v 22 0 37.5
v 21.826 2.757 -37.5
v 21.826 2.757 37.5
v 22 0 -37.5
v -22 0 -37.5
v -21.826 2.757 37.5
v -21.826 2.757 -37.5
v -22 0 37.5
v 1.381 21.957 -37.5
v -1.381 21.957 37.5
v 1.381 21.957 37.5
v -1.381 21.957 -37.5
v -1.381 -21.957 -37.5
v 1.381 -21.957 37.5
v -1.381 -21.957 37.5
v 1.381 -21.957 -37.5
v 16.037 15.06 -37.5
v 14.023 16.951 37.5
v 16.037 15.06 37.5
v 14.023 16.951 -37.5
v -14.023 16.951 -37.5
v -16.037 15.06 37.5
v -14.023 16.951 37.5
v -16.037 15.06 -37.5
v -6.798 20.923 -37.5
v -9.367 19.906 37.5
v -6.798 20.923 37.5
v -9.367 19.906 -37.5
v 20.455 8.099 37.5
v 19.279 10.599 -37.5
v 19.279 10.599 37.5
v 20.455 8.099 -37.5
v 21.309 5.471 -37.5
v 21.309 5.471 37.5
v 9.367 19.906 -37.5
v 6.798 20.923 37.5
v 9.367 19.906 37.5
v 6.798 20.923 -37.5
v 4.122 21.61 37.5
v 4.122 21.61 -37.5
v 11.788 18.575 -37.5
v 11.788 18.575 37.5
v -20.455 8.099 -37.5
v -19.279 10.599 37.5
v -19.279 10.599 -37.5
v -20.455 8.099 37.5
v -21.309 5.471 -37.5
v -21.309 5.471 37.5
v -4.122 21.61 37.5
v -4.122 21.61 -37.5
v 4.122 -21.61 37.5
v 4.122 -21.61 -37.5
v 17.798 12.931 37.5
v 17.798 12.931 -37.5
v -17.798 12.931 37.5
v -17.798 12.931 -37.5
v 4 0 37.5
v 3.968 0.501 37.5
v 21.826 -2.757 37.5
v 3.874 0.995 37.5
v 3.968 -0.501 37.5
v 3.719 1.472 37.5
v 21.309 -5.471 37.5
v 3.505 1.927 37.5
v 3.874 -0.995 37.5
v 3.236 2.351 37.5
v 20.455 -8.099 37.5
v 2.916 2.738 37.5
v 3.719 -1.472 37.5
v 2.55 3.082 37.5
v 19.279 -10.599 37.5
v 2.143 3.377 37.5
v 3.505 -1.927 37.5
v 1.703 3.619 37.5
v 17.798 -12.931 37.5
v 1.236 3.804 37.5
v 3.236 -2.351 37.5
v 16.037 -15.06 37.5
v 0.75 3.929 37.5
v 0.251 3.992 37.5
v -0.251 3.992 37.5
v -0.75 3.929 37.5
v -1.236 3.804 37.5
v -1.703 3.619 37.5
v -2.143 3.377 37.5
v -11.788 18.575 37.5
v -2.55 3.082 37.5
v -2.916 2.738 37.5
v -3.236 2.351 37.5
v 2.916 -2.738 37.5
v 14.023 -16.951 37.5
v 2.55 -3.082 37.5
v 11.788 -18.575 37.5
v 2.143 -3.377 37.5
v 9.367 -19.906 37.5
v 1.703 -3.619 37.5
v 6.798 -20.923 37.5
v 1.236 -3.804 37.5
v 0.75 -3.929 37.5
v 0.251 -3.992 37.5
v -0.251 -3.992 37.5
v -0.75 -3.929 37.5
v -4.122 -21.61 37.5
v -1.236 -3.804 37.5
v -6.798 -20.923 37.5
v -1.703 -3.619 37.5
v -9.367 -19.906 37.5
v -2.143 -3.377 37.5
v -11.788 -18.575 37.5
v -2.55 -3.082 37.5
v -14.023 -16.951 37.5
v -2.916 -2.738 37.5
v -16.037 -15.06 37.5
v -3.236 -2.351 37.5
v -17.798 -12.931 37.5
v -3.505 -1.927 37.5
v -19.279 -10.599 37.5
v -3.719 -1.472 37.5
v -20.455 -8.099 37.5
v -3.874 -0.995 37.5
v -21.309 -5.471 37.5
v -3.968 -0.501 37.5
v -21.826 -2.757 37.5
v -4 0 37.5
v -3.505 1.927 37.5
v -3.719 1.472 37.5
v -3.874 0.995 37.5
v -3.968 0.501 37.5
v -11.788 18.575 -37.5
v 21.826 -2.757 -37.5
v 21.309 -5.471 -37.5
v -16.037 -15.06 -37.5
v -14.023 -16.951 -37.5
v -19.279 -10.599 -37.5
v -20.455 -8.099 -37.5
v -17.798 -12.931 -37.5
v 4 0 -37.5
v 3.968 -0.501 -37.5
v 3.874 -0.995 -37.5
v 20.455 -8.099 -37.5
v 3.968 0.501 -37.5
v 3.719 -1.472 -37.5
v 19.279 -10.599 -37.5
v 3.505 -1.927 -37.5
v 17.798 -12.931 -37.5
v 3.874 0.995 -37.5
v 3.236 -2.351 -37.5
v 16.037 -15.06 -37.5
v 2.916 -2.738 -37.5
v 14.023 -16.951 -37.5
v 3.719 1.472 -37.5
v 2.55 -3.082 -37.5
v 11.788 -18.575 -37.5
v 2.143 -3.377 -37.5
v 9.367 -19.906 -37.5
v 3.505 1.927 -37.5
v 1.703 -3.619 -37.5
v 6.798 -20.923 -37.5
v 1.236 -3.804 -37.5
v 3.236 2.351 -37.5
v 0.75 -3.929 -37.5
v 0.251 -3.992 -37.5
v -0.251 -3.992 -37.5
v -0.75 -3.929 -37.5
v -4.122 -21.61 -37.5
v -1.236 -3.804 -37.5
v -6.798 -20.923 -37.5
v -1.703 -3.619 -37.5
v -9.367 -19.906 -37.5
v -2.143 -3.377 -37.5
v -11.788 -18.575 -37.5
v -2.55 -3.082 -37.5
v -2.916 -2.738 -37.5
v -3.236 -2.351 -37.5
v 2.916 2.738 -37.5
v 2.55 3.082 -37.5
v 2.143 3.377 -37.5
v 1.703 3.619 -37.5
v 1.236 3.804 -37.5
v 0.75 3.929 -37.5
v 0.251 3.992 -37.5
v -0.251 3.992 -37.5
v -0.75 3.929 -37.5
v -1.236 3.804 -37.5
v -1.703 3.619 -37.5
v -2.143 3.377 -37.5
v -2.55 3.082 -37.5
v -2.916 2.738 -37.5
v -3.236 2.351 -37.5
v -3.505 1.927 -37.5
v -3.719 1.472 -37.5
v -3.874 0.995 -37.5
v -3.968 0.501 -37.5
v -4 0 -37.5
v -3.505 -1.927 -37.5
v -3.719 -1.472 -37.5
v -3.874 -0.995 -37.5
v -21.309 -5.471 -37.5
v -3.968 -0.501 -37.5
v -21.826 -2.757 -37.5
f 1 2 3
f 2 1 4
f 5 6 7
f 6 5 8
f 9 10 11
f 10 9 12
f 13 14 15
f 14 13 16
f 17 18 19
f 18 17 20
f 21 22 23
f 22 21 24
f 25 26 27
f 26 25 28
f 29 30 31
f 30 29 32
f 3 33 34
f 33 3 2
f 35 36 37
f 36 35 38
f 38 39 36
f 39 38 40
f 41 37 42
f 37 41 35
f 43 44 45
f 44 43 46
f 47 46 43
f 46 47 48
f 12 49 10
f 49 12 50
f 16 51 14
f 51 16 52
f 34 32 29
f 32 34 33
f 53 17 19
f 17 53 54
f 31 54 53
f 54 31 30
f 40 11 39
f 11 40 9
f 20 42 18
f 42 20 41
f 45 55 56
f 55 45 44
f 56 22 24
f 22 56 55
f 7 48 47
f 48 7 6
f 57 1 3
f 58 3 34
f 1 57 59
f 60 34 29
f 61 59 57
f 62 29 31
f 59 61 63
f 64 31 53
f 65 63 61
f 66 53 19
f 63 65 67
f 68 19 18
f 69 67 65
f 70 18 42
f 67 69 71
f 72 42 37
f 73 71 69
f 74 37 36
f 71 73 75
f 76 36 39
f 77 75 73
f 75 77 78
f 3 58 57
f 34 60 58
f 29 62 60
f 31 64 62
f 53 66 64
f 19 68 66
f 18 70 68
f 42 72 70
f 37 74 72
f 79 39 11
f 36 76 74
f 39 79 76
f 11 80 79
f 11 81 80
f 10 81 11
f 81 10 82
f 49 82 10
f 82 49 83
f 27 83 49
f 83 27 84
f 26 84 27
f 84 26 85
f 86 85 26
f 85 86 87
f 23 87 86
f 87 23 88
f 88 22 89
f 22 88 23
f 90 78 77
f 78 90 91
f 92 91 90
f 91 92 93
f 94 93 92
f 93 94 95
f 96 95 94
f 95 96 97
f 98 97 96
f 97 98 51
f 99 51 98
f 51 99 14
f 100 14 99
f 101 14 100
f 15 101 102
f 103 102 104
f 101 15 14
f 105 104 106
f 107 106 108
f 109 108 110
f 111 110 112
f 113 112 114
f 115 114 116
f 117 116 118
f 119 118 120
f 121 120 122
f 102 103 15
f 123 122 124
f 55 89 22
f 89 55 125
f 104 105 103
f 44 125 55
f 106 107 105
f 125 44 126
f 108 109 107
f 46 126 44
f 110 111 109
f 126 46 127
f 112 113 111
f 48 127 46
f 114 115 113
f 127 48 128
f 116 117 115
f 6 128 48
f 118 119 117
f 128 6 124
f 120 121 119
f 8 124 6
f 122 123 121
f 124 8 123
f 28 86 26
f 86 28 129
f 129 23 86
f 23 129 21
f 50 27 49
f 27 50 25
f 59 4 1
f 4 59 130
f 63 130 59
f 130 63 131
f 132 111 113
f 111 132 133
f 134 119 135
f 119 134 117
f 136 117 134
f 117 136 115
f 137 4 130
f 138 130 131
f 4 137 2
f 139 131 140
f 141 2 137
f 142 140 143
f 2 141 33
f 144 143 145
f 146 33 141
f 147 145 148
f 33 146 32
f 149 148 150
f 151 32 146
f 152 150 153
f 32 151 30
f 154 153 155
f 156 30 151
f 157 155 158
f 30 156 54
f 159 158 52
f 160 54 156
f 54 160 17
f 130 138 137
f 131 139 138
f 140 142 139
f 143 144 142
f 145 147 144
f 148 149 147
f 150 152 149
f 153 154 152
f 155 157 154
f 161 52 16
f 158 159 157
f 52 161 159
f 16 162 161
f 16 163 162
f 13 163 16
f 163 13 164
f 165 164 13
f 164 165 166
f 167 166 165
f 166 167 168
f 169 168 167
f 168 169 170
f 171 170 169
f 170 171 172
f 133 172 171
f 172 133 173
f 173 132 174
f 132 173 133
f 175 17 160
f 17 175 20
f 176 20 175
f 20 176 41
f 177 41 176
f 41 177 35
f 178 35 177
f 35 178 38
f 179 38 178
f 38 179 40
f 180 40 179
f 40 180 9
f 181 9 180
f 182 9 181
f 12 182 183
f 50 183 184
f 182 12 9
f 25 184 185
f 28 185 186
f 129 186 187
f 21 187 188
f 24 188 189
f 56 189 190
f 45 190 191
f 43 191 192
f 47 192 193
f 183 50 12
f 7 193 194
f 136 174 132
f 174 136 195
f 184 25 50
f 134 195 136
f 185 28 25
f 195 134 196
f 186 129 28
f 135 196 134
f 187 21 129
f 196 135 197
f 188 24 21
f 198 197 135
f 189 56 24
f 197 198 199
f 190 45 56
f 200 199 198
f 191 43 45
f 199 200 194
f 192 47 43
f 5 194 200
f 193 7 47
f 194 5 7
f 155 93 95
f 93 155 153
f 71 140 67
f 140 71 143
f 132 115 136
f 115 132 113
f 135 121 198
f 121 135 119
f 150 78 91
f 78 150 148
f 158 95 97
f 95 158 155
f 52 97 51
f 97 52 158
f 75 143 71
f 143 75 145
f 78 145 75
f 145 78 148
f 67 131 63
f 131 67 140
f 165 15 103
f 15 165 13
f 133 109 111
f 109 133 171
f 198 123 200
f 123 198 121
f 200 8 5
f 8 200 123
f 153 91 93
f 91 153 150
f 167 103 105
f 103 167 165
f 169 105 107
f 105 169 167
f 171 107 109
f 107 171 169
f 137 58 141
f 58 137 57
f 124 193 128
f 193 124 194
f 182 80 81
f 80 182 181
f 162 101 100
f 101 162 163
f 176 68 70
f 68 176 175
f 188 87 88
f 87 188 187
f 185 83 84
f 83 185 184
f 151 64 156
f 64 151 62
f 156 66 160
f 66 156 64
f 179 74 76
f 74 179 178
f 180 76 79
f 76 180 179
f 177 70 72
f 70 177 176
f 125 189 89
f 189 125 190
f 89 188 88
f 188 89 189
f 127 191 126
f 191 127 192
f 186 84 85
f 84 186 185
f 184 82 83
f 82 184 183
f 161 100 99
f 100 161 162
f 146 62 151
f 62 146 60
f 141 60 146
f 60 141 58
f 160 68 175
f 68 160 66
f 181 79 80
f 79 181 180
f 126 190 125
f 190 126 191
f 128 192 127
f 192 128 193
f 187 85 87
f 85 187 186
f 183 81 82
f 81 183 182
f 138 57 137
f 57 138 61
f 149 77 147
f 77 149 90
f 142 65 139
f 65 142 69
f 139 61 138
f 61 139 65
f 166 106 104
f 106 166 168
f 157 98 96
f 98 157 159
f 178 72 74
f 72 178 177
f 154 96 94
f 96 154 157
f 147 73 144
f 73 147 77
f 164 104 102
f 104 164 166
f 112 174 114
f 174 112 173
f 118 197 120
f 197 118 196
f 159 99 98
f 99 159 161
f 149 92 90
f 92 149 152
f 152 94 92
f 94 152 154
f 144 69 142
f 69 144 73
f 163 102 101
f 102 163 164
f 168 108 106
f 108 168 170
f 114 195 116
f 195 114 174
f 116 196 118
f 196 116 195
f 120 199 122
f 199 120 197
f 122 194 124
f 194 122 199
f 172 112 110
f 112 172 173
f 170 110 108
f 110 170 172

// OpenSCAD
$fn = 50;


difference() {
	union() {
		translate(v = [0, 0, -37.5000000000]) {
			cylinder(h = 75, r = 22.0000000000);
		}
	}
	union() {
		translate(v = [0, 0, -100.0000000000]) {
			cylinder(h = 200, r = 4);
		}
	}
}
